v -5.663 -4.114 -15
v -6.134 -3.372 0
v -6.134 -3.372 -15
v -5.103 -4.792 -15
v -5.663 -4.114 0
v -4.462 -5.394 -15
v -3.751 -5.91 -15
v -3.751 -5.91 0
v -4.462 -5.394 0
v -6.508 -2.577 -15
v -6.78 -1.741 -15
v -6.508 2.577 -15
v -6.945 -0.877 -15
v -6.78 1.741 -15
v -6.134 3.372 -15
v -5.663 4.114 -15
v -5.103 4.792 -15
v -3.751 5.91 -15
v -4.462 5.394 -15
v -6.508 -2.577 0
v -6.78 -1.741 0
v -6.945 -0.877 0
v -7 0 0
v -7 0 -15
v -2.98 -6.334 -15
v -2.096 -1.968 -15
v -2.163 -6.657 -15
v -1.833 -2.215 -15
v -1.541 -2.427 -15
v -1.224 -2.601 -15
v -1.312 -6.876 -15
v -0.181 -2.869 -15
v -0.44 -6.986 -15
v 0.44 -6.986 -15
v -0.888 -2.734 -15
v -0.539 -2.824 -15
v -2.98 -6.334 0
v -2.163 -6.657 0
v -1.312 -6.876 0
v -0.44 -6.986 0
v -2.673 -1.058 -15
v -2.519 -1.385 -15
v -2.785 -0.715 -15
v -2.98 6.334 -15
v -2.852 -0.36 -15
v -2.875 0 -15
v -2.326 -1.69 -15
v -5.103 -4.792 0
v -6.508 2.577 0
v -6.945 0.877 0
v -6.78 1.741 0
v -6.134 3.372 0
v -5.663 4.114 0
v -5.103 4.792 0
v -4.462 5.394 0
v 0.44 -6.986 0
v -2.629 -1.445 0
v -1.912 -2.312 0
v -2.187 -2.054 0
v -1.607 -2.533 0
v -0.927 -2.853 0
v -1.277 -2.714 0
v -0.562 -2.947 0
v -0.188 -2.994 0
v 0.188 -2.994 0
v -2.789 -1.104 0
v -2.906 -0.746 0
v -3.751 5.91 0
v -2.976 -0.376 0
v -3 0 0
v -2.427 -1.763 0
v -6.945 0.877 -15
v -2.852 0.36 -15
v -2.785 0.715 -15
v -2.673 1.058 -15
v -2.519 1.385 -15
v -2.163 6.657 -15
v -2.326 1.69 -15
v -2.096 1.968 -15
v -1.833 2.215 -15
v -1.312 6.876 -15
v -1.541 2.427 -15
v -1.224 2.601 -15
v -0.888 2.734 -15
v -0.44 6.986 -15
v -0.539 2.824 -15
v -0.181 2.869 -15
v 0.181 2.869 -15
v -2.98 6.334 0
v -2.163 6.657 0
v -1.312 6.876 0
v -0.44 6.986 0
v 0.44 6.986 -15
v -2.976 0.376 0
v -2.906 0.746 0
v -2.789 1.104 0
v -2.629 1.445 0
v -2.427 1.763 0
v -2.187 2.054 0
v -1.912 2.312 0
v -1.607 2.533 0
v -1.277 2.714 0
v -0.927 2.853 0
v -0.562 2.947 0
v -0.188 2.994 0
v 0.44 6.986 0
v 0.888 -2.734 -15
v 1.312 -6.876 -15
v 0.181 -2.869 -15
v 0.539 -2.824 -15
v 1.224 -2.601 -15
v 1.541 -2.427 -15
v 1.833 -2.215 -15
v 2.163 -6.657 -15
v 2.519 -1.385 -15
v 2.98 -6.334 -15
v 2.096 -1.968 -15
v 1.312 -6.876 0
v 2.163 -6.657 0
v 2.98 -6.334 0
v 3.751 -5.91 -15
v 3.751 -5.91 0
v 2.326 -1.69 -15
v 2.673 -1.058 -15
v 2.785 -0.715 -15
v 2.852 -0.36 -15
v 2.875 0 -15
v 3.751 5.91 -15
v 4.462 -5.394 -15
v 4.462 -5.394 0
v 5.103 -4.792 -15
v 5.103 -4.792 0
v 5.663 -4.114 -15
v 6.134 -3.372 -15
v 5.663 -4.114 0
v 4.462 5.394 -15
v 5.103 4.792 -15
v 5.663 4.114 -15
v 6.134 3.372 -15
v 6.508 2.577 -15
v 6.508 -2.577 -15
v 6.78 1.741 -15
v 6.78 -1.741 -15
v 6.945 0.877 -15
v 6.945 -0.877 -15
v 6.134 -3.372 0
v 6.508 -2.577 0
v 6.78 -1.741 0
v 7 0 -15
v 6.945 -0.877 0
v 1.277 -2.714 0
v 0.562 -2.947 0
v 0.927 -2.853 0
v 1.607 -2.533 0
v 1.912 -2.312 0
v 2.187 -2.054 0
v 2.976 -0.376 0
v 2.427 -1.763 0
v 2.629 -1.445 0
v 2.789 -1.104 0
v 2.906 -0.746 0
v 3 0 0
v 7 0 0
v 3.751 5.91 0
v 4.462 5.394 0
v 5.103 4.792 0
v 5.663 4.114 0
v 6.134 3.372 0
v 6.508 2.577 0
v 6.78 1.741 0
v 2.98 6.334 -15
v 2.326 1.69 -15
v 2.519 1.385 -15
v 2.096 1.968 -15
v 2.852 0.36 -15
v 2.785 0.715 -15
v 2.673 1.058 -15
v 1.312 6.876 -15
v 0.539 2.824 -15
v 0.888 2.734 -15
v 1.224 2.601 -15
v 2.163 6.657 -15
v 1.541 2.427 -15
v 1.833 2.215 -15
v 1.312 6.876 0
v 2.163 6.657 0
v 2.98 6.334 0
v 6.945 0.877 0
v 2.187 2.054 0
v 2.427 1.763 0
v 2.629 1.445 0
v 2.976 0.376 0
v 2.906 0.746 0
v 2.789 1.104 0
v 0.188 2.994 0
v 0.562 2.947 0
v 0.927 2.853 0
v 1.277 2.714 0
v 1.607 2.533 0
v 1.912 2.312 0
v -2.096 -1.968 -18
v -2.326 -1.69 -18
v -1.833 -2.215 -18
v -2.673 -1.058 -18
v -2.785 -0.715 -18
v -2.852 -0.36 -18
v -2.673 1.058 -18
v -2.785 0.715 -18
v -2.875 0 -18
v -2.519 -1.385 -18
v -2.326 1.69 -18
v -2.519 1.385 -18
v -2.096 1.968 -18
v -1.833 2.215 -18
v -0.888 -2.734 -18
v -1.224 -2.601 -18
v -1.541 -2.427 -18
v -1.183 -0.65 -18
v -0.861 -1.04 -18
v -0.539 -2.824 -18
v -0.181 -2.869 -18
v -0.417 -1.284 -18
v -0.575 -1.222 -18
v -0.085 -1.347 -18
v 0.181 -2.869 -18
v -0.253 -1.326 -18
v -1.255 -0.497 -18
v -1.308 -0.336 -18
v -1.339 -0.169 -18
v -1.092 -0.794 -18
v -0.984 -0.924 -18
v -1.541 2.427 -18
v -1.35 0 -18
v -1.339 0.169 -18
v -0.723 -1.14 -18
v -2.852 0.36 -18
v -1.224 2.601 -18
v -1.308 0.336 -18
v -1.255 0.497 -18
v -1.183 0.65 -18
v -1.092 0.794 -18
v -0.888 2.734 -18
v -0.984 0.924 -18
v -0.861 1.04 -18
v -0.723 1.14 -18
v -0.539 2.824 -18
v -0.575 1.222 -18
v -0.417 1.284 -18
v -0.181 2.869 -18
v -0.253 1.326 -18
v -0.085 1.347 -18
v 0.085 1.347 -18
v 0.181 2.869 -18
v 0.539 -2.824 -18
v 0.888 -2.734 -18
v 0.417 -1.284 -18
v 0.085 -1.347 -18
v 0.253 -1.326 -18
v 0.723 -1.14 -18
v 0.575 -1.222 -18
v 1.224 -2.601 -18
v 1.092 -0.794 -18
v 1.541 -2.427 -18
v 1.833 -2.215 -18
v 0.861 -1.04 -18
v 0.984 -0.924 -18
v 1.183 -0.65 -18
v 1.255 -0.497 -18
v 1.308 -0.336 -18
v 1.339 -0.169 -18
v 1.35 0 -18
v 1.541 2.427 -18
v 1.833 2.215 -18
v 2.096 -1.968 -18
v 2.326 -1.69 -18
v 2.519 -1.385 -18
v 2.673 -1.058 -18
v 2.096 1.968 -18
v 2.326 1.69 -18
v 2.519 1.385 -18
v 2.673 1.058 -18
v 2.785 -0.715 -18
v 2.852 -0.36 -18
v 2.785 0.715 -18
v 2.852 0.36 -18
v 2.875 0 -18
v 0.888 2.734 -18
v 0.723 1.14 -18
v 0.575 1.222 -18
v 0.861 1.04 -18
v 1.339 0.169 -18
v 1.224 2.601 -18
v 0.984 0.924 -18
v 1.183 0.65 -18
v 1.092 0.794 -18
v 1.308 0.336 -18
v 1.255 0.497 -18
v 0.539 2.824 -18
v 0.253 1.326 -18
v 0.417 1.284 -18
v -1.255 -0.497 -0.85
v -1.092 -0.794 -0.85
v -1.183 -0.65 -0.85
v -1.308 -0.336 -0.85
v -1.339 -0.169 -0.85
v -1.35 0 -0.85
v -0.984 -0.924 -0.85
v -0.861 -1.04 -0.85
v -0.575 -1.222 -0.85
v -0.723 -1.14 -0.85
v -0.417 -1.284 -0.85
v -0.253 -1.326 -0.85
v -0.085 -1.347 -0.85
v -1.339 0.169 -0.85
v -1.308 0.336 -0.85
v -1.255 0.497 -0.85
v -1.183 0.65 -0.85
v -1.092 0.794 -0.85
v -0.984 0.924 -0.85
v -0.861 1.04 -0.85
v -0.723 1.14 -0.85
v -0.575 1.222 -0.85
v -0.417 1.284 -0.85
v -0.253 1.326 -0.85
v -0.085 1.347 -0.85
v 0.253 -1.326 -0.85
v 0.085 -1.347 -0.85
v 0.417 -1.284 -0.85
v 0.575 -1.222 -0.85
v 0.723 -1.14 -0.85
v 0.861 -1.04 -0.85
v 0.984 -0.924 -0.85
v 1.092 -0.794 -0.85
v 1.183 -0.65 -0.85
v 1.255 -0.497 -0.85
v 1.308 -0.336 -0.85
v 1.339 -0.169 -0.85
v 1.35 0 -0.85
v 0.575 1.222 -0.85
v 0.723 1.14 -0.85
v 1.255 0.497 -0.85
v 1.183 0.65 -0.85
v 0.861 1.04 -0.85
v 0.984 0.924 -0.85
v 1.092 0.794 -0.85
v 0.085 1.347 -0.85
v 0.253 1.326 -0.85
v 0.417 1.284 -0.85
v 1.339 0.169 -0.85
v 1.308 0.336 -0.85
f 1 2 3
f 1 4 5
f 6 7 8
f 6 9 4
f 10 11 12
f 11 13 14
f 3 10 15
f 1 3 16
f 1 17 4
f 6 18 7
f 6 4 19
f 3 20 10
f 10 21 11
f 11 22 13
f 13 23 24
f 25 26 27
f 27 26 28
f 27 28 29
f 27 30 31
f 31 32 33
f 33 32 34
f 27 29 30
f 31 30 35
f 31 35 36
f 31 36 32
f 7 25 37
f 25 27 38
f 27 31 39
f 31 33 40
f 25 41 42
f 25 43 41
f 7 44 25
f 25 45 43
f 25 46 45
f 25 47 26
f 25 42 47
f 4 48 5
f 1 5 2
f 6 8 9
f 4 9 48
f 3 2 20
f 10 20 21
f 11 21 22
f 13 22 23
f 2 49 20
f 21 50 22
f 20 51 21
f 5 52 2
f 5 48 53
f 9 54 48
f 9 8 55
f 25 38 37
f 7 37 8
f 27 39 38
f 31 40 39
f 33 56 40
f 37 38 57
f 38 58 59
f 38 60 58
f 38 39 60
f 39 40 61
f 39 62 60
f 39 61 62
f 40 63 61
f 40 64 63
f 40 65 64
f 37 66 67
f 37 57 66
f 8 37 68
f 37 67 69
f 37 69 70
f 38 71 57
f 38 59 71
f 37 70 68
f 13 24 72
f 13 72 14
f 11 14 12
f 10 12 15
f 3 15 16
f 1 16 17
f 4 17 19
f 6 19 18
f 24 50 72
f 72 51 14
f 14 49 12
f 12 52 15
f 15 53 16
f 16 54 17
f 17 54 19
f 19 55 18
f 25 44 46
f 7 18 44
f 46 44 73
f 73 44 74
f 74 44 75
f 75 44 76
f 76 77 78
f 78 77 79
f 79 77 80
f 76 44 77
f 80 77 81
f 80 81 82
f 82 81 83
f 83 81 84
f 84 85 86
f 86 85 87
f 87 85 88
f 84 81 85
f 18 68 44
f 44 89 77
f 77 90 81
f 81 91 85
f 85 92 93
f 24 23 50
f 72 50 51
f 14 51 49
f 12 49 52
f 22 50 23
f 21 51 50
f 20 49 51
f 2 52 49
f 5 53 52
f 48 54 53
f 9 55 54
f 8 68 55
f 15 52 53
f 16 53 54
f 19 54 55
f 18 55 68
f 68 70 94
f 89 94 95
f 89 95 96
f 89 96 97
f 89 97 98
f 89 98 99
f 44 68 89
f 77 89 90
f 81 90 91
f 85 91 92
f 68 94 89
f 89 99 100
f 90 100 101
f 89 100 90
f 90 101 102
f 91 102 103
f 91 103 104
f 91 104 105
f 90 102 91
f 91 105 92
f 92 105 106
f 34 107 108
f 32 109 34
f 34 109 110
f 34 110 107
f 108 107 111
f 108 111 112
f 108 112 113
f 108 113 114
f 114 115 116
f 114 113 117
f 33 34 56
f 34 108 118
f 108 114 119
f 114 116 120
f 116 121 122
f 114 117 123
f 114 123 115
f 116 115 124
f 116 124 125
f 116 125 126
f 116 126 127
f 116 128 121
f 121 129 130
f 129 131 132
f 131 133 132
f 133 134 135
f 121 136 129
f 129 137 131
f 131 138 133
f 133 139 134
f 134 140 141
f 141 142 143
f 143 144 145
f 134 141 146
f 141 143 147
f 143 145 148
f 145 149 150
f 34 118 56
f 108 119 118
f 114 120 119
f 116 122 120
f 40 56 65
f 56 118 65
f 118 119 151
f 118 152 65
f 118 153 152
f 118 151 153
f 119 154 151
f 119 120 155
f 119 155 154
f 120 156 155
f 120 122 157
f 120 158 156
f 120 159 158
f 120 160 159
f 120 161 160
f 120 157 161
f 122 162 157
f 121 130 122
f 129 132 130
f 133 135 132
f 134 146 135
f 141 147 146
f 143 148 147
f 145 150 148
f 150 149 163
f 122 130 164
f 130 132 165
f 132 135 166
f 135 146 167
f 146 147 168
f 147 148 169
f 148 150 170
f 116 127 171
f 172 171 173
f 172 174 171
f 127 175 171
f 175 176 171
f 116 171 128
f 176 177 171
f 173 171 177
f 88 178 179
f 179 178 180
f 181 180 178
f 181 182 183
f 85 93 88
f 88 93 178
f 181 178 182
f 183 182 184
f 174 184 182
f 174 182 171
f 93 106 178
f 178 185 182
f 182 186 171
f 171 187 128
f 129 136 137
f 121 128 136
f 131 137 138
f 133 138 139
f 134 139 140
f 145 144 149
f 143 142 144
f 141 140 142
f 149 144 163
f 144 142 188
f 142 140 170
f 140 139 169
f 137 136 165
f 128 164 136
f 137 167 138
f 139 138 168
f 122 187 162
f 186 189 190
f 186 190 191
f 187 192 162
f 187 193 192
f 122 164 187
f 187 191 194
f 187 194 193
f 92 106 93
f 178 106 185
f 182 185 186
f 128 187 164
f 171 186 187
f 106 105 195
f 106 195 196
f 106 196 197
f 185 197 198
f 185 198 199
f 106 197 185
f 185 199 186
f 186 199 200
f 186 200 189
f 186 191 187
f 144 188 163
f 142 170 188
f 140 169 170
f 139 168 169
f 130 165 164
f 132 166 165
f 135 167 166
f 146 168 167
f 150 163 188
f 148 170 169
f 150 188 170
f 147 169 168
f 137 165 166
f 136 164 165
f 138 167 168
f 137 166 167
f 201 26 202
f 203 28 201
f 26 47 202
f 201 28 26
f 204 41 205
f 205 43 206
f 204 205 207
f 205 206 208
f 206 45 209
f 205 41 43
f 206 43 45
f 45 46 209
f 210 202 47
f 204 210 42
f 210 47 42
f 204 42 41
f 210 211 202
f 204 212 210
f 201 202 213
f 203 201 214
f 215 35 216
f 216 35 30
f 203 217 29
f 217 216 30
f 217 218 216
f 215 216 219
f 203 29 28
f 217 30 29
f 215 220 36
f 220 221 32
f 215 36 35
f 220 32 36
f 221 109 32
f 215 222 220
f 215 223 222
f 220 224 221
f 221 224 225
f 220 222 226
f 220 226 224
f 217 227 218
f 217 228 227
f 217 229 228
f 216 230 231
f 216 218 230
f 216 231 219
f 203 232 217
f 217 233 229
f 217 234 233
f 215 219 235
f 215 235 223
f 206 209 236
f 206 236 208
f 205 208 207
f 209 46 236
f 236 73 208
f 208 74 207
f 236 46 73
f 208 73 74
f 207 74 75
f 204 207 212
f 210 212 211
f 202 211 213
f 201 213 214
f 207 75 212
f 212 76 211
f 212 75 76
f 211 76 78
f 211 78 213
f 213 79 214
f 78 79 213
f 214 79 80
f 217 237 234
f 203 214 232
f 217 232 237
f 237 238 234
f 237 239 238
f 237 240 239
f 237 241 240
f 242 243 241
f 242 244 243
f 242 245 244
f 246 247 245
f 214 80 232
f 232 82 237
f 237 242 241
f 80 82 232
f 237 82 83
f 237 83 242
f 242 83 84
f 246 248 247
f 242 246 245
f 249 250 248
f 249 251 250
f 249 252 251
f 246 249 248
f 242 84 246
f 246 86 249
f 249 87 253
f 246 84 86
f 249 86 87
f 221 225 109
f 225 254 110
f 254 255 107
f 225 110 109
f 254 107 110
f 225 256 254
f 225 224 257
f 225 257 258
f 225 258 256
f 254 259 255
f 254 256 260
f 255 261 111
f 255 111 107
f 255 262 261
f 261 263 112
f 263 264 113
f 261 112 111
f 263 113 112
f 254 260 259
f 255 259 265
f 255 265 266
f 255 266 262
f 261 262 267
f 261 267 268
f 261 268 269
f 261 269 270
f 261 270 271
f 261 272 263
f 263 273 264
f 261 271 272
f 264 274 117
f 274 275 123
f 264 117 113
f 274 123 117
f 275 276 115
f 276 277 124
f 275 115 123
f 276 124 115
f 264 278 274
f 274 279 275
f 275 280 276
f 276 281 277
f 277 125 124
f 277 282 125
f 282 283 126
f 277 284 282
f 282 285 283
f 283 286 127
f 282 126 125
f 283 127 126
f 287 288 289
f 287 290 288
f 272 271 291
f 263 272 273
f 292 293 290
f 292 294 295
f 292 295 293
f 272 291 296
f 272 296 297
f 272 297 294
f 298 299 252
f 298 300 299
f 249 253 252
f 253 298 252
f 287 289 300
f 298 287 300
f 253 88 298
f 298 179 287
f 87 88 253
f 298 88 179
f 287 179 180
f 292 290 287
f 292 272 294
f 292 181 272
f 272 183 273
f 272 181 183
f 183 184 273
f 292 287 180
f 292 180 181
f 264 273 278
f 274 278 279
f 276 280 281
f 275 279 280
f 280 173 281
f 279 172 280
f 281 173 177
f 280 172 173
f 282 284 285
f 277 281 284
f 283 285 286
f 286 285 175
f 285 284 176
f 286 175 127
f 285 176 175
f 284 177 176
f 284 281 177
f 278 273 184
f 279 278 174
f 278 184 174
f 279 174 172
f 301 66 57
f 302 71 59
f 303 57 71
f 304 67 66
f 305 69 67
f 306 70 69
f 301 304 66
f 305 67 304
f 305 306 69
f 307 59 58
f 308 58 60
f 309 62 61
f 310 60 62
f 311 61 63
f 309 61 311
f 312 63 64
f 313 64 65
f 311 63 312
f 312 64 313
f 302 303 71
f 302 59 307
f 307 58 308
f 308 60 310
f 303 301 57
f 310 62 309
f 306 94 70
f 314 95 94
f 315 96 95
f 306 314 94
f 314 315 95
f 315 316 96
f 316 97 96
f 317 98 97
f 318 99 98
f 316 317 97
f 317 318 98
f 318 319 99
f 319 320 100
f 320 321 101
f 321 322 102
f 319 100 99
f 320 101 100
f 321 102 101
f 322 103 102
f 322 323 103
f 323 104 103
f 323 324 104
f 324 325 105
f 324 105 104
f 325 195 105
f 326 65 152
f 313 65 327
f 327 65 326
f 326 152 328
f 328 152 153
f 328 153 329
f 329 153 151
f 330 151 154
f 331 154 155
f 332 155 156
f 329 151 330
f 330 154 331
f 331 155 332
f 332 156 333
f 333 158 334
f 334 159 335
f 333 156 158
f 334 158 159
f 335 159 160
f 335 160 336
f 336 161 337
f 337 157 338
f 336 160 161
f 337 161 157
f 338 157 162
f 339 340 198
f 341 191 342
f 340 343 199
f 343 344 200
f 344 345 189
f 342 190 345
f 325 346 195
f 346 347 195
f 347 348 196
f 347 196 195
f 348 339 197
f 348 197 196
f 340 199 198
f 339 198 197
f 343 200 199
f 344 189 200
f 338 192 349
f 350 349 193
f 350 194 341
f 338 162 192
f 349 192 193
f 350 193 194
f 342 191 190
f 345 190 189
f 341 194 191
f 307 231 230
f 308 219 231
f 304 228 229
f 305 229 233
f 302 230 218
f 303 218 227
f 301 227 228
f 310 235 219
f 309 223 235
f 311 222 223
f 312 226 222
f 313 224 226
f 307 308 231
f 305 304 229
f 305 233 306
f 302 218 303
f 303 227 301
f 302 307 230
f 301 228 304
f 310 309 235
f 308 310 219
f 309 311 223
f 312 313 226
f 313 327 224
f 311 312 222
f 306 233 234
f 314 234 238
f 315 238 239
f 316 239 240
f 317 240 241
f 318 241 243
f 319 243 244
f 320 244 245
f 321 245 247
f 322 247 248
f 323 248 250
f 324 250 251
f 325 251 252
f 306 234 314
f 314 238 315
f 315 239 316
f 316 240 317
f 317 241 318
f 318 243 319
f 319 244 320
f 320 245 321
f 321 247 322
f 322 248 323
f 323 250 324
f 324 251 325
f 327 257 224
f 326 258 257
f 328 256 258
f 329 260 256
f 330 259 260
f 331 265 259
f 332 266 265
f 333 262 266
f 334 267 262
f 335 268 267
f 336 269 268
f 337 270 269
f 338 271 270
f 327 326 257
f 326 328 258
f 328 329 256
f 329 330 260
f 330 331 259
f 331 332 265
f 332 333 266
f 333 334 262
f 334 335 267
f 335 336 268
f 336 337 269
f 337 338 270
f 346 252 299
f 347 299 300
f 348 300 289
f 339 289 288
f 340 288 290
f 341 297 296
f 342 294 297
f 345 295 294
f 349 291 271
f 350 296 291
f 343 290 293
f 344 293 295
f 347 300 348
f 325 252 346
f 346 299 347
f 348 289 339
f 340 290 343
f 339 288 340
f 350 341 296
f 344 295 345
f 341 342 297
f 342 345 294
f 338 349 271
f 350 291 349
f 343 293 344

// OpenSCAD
$fn = 50;

difference() {
	union() {
		translate(v = [0, 0, -15.0]) {
			cylinder(h = 15, r = 7.0);
		}
		#translate(v = [0, 0, -18.0]) {
			cylinder(h = 18, r = 2.875);
		}
	}
	union() {
		translate(v = [0, 0, 0]) {
			rotate(a = [0, 0, 0]) {
				difference() {
					union() {
						translate(v = [0, 0, -18.0]) {
							cylinder(h = 18, r = 1.0);
						}
						translate(v = [0, 0, -0.85]) {
							cylinder(h = 0.85, r1 = 1.35, r2 = 3.0);
						}
						translate(v = [0, 0, -18.0]) {
							cylinder(h = 18, r = 1.35);
						}
						translate(v = [0, 0, -18.0]) {
							cylinder(h = 18, r = 1.0);
						}
					}
					union();
				}
			}
		}
	}
}
